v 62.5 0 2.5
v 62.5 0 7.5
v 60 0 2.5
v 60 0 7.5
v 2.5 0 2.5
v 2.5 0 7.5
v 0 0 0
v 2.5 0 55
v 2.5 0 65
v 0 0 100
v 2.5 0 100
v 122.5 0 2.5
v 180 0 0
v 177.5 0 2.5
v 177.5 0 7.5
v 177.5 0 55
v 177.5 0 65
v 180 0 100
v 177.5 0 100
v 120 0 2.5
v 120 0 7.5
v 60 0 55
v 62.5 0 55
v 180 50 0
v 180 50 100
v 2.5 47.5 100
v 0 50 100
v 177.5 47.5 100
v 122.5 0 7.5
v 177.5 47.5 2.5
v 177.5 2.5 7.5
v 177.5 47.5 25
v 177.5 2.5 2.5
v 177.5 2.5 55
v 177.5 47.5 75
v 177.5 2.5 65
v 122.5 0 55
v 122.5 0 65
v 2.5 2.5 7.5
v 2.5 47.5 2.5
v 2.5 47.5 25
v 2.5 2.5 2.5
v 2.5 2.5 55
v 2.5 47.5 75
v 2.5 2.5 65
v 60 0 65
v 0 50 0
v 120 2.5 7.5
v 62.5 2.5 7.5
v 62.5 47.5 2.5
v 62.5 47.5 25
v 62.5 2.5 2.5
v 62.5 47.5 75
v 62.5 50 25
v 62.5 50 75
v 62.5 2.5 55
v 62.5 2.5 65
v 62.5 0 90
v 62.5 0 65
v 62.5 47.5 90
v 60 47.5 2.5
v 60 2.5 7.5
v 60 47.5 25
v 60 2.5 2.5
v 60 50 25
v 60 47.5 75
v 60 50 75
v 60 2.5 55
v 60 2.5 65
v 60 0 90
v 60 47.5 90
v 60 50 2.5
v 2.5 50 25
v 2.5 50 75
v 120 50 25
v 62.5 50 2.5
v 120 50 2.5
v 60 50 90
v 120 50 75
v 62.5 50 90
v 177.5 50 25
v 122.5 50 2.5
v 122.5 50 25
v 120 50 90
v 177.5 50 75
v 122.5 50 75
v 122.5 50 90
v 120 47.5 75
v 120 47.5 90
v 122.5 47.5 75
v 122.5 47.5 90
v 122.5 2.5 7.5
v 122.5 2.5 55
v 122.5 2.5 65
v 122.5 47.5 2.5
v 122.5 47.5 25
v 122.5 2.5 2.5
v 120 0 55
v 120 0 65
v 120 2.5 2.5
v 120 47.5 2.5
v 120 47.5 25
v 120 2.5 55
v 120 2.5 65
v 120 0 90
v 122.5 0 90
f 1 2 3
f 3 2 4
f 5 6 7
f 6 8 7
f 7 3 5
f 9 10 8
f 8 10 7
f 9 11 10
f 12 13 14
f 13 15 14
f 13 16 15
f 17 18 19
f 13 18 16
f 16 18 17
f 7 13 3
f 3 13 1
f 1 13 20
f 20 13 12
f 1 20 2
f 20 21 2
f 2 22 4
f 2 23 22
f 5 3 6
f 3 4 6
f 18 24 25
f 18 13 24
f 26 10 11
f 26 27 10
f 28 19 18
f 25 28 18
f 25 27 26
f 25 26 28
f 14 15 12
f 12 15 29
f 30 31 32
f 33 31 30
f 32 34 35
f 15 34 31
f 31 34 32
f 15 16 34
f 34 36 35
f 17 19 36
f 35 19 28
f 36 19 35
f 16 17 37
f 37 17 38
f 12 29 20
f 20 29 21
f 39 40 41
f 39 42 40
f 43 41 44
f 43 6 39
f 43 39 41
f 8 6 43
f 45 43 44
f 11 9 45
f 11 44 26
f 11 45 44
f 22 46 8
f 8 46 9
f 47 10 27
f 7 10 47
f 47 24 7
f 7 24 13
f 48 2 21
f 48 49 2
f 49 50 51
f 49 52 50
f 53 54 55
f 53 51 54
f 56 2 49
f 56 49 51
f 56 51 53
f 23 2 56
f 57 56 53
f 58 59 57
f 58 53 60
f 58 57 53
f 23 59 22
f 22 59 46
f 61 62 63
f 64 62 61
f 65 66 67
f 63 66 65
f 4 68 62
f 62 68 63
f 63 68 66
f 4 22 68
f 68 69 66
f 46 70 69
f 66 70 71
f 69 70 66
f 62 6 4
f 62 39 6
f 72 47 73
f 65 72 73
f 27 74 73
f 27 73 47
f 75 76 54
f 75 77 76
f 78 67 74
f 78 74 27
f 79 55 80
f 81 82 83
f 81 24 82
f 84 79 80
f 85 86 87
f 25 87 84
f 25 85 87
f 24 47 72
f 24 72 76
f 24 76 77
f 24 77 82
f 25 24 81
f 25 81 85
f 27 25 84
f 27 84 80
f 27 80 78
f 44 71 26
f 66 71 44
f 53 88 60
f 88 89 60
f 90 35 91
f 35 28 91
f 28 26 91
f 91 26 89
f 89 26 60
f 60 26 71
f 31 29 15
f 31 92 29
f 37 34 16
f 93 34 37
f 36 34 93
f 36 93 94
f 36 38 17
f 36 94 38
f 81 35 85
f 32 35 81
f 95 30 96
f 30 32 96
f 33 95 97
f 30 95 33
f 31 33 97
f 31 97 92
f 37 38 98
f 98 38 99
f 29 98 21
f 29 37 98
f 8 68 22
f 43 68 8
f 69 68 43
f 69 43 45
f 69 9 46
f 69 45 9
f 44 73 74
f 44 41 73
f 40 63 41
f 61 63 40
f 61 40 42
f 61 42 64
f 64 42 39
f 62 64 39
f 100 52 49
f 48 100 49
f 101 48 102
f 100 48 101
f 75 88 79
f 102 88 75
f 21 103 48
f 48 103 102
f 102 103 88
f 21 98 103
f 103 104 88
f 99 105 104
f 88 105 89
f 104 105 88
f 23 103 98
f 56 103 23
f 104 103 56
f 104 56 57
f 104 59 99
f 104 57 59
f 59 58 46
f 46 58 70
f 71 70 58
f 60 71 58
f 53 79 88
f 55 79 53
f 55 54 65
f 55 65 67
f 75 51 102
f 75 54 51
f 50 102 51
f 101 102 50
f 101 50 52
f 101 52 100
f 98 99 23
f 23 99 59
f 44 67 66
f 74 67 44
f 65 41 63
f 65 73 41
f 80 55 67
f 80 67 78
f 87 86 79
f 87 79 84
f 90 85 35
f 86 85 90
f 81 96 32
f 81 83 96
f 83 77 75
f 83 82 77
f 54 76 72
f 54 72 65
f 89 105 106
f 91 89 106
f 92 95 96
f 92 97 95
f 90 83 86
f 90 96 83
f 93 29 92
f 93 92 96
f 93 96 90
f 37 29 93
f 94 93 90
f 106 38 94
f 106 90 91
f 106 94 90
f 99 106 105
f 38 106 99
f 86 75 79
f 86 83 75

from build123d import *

# Parameters (mm, degrees)
BOX005_W     = 175
BOX005_H     = 2.5
BOX005_DEPTH = 50
BOX001_W     = 175
BOX001_H     = 47.5
BOX001_DEPTH = 97.5
BOX_W        = 180
BOX_H        = 50
BOX_DEPTH    = 100
BOX002_W     = 2.5
BOX002_H     = 50
BOX002_DEPTH = 87.5
BOX003_W     = 175
BOX003_H     = 2.5
BOX003_DEPTH = 10
BOX004_W     = 175
BOX004_H     = 2.5
BOX004_DEPTH = 5
BOX006_W     = 2.5
BOX006_H     = 50
BOX006_DEPTH = 87.5
BOX007_W     = 2.5
BOX007_H     = 50
BOX007_DEPTH = 87.5


with BuildPart() as back_cutout:
    # Box005 → Box005 (new body)
    with BuildSketch(Plane(origin=(2.5, 47.5, 25), x_dir=(1, 0, 0), z_dir=(0, 0, 1))):
        with Locations((87.5, 1.25)):
            Rectangle(BOX005_W, BOX005_H)
    extrude(amount=BOX005_DEPTH)


with BuildPart() as shell_cutout:
    # Box001 → Box001 (new body)
    with BuildSketch(Plane(origin=(2.5, 0, 2.5), x_dir=(1, 0, 0), z_dir=(0, 0, 1))):
        with Locations((87.5, 23.75)):
            Rectangle(BOX001_W, BOX001_H)
    extrude(amount=BOX001_DEPTH)


with BuildPart() as outer_shell:
    # Box → Box (new body)
    with BuildSketch(Plane.XY):
        with Locations((90, 25)):
            Rectangle(BOX_W, BOX_H)
    extrude(amount=BOX_DEPTH)

    # Cut: cut Shell Cutout
    add(shell_cutout.part, mode=Mode.SUBTRACT)

    # Cut001: cut Back Cutout
    add(back_cutout.part, mode=Mode.SUBTRACT)


with BuildPart() as center_divider:
    # Box002 → Box002 (new body)
    with BuildSketch(Plane(origin=(60, 0, 2.5), x_dir=(1, 0, 0), z_dir=(0, 0, 1))):
        with Locations((1.25, 25)):
            Rectangle(BOX002_W, BOX002_H)
    extrude(amount=BOX002_DEPTH)


with BuildPart() as front_bar:
    # Box003 → Box003 (new body)
    with BuildSketch(Plane(origin=(2.5, 0, 55), x_dir=(1, 0, 0), z_dir=(0, 0, 1))):
        with Locations((87.5, 1.25)):
            Rectangle(BOX003_W, BOX003_H)
    extrude(amount=BOX003_DEPTH)


with BuildPart() as bottom_lip:
    # Box004 → Box004 (new body)
    with BuildSketch(Plane(origin=(2.5, 0, 2.5), x_dir=(1, 0, 0), z_dir=(0, 0, 1))):
        with Locations((87.5, 1.25)):
            Rectangle(BOX004_W, BOX004_H)
    extrude(amount=BOX004_DEPTH)


with BuildPart() as right_divider:
    # Box006 → Box006 (new body)
    with BuildSketch(Plane(origin=(120, 0, 2.5), x_dir=(1, 0, 0), z_dir=(0, 0, 1))):
        with Locations((1.25, 25)):
            Rectangle(BOX006_W, BOX006_H)
    extrude(amount=BOX006_DEPTH)


with BuildPart() as fusion:
    # Box007 → Box007 (new body)
    with BuildSketch(Plane(origin=(60, 0, 2.5), x_dir=(1, 0, 0), z_dir=(0, 0, 1))):
        with Locations((1.25, 25)):
            Rectangle(BOX007_W, BOX007_H)
    extrude(amount=BOX007_DEPTH)

    # Fusion: union Outer Shell, Center Divider, Front Bar, Bottom Lip, Right Divider
    add(outer_shell.part)
    add(center_divider.part)
    add(front_bar.part)
    add(bottom_lip.part)
    add(right_divider.part)


solid = fusion.part
